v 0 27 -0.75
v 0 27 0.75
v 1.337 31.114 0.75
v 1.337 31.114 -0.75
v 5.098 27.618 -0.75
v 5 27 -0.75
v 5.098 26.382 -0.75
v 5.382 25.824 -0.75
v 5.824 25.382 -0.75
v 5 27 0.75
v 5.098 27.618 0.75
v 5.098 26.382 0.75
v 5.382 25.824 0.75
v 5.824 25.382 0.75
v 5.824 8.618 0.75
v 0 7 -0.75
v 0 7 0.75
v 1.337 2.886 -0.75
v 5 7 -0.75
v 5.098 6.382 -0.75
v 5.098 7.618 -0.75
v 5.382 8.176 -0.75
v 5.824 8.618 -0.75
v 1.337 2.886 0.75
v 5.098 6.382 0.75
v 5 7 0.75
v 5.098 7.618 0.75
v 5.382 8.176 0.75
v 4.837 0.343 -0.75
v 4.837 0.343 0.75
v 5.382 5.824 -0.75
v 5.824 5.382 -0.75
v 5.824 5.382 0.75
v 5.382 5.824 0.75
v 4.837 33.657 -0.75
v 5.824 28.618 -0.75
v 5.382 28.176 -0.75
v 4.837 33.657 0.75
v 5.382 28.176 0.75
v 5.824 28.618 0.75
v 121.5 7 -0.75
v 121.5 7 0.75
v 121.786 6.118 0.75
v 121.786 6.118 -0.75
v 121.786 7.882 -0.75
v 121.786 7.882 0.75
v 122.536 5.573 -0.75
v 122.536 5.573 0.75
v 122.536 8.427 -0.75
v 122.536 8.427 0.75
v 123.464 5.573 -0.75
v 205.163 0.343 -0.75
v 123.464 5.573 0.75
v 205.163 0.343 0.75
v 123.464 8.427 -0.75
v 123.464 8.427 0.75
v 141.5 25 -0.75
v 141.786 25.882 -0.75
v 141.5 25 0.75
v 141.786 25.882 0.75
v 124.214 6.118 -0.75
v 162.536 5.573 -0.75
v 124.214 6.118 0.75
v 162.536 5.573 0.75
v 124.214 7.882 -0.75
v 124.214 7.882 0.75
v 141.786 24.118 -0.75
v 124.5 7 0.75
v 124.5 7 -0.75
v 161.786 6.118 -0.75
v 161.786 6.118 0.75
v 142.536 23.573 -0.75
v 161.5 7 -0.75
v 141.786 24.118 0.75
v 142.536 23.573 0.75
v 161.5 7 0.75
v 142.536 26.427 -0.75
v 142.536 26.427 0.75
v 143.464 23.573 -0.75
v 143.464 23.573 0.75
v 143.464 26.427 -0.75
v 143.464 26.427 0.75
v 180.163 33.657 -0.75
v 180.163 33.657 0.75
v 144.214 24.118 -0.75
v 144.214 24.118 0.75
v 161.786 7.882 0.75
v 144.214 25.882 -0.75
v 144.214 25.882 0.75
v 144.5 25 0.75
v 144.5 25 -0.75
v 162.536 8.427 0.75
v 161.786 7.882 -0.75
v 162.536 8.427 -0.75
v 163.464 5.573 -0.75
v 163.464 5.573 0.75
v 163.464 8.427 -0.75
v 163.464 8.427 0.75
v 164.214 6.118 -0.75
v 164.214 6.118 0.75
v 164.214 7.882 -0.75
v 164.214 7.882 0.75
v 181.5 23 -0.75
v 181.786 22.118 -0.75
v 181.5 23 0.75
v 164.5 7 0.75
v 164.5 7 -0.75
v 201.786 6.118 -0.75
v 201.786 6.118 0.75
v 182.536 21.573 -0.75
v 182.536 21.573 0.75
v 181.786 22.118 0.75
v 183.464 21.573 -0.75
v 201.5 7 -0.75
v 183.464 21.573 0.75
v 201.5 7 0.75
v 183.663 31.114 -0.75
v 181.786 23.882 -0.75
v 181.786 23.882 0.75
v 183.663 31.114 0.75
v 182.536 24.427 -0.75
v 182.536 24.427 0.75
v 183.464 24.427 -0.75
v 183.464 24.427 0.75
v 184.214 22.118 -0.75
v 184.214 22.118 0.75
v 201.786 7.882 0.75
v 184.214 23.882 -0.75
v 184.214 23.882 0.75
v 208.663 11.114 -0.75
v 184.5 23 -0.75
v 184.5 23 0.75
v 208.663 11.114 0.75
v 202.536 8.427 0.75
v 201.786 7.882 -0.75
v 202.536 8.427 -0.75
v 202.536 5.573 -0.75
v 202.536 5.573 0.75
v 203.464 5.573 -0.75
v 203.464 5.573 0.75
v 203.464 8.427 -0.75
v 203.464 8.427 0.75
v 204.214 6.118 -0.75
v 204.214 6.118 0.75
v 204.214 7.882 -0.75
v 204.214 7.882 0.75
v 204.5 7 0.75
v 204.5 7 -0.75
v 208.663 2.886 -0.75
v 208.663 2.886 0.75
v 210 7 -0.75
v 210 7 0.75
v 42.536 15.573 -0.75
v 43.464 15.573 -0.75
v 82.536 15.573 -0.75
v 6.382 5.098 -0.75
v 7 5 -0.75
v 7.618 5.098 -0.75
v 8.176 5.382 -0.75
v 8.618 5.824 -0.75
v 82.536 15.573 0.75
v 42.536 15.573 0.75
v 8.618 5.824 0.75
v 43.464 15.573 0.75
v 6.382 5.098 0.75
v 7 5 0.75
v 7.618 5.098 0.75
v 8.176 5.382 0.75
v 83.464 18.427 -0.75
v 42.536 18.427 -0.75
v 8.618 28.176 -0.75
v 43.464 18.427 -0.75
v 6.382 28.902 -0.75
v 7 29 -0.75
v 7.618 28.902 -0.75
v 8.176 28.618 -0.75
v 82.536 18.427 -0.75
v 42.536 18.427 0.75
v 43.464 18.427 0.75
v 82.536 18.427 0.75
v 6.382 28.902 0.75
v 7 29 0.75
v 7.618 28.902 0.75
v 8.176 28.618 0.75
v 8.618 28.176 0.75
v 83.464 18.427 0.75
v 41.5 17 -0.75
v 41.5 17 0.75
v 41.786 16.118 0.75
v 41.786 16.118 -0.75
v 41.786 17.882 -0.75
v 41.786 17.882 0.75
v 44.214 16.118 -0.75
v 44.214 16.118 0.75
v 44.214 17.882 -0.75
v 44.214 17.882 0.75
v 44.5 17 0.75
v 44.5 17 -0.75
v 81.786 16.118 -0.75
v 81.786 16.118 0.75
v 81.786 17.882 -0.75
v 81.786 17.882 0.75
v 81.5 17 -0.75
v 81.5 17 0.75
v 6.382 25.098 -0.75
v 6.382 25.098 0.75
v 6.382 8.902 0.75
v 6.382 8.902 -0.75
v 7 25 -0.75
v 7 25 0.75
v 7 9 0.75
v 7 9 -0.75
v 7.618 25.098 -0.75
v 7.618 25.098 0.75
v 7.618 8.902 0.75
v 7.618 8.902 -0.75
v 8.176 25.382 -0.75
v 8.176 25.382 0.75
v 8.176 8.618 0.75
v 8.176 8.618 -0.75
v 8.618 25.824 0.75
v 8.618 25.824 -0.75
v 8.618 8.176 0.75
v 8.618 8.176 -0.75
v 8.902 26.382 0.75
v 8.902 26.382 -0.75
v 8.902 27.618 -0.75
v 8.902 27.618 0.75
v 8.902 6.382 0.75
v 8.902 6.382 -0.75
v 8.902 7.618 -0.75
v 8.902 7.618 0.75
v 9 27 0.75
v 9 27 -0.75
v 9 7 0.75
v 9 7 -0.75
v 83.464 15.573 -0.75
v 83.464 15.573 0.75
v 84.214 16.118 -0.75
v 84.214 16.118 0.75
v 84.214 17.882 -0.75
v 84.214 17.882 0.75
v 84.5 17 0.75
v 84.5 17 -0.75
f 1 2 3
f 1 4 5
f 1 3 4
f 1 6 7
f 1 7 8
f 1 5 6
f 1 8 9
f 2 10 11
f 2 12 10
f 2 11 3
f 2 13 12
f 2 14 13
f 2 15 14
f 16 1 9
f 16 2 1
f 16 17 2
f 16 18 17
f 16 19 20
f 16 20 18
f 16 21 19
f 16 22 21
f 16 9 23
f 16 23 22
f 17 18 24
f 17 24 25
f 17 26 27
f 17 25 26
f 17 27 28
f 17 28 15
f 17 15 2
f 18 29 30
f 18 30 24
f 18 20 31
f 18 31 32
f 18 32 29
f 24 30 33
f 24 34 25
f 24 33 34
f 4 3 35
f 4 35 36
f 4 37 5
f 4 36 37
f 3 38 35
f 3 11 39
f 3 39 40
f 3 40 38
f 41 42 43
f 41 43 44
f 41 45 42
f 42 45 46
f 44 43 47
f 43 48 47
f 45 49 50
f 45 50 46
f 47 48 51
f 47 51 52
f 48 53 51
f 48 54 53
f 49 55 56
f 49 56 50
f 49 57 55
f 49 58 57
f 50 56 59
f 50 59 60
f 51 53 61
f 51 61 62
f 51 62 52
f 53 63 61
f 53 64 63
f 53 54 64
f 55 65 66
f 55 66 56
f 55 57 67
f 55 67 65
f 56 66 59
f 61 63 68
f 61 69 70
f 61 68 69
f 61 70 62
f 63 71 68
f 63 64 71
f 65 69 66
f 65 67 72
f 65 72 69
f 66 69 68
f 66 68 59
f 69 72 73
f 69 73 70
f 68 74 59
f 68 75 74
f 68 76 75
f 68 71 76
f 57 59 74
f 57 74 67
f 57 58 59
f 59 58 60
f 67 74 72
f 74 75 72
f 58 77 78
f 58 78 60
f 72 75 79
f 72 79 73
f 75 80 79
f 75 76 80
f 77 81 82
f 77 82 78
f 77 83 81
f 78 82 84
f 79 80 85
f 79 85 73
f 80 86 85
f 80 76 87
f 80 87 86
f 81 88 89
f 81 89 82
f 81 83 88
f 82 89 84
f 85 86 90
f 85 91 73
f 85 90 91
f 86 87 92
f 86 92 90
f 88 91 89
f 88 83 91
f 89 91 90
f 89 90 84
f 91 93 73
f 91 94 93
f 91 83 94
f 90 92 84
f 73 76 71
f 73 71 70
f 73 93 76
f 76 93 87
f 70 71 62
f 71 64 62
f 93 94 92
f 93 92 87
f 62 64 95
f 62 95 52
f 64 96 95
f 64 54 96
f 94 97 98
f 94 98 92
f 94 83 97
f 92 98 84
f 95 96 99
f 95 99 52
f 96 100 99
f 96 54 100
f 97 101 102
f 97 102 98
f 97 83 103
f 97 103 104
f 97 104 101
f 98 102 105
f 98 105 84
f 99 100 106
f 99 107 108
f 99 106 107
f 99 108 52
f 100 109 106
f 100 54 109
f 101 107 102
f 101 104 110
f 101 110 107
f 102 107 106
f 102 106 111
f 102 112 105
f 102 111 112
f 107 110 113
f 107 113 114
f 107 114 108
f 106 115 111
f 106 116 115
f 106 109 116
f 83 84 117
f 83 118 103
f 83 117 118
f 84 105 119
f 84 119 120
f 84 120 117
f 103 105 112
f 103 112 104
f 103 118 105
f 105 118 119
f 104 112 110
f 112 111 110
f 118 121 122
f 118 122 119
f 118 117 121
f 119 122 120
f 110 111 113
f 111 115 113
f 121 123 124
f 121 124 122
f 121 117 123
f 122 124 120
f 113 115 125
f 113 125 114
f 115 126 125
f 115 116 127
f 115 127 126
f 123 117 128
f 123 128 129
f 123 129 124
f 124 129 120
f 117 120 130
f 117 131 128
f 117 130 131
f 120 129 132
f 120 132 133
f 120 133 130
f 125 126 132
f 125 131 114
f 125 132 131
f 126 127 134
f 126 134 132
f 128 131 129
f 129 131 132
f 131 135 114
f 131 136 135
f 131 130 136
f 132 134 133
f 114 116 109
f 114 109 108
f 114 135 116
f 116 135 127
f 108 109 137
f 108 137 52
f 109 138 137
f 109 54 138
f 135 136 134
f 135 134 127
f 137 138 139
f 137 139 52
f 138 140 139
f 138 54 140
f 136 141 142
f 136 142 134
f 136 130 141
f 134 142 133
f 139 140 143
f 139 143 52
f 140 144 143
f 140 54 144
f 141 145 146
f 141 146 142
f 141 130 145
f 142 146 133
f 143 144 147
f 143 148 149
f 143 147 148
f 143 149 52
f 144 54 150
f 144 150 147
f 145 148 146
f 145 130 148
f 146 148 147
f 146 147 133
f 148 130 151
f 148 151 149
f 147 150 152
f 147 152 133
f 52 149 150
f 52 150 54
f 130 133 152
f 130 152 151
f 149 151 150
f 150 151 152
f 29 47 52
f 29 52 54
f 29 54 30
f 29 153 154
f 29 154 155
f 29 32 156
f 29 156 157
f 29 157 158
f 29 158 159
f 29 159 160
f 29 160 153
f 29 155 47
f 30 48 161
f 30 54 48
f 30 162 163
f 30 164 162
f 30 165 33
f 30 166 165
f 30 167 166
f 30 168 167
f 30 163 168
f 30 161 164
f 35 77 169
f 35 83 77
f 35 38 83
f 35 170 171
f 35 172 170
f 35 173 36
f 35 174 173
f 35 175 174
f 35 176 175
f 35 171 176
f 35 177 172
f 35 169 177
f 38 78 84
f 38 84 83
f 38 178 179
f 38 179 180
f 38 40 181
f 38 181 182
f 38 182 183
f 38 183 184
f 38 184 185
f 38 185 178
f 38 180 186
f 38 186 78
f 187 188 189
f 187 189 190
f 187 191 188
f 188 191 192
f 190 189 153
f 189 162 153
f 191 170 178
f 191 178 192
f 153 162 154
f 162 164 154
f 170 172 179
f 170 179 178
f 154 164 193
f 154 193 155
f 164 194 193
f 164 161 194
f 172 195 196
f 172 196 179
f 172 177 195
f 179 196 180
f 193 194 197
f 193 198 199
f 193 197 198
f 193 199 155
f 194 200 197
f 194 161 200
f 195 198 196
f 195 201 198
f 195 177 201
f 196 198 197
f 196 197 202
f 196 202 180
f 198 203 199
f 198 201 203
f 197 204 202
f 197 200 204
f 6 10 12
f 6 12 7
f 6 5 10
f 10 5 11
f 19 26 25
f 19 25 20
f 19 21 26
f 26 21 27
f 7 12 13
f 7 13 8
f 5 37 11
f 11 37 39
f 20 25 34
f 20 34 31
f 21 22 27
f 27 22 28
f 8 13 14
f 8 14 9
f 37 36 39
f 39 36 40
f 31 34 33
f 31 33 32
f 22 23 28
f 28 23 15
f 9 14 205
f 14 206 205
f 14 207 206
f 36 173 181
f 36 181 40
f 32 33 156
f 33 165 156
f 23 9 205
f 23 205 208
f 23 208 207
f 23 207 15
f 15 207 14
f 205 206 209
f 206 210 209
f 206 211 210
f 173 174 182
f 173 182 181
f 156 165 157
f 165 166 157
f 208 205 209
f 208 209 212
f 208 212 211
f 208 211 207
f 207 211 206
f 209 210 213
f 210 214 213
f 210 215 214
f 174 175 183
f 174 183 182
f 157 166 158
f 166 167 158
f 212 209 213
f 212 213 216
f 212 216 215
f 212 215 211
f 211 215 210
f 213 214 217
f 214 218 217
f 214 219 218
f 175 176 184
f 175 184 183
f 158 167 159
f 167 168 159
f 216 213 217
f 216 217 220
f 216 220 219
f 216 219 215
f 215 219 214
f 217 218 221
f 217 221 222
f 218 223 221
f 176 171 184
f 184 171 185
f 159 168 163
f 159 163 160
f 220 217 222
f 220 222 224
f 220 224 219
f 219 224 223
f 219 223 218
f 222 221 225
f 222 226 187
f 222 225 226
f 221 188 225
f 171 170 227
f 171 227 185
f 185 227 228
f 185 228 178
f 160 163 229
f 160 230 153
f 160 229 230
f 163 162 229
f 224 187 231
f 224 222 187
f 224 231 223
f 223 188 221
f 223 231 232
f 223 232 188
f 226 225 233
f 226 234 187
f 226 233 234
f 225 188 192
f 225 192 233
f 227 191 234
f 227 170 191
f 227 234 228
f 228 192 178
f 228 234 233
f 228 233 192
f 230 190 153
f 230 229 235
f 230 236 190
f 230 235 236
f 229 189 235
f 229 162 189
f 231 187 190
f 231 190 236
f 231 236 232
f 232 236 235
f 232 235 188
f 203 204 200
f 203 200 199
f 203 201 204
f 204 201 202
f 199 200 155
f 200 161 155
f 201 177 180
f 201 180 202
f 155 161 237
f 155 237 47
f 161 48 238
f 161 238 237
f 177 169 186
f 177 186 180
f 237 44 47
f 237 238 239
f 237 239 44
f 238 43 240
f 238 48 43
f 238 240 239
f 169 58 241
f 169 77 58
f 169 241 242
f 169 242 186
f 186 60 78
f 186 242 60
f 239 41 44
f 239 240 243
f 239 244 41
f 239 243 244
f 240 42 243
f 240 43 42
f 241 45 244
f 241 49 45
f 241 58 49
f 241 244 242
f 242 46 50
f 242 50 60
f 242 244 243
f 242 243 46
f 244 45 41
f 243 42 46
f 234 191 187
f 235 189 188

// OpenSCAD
// file: ../Parameters.scad
//Main tube diameter - hole [mm]
main_tube_outer_diameter = 25.4;
main_tube_inner_diameter = 23.5;

//Tube for undercarriage - hole [mm]
tube_for_undercarriage_outer_diameter = 10.6;
tube_for_undercarriage_inner_diameter = 6;
global_clearance = 0.5;


//umístění podvozkových trubek

second_undercarriage_hole = main_tube_outer_diameter*2 + main_tube_outer_diameter/5 + main_tube_outer_diameter/2 + 170 + 160;

// Parameters of cube couplings
coupling_wall_thickness = main_tube_outer_diameter/5;  //width of coupling walls 
thickness_between_tubes = main_tube_outer_diameter/10;    // minimum distance between tubes in couplings

coupling_wall_thickness_undercarriage = tube_for_undercarriage_outer_diameter/3;
thickness_between_tubes_undercarriage = tube_for_undercarriage_outer_diameter/10;

//Screw diameter and nut for M4 [mm]
M4_screw_diameter=4.5;
Nut_height_M4 = 3.2;
Nut_diameter_M4 = 7.86;


//Screw diameter and nut for M3 [mm]
M3_screw_diameter = 3.2;
Nut_height_M3 = 1.7;	
Nut_diameter_M3 = 6.6; 


//The tube for help
Help_main_tube_outer = 25;
Help_main_tube_inner = 23; 
Help_tube_for_undercarriage_outer = 10;
Help_tube_for_undercarriage_inner = 5;


//main hull parameters

hull_drop_length = 580;
hull_wall_thickness = 0.8;
hull_y_size = 120;
hull_z_size = 150;
hull_x_size = 580;
hull_corner_radius = 4;
hull_airfoil_thickness= 35;  // thickness of drop generating airfoil in percent of lenght.
hull_scale_x = 1;
hull_scale_y = 1.5;
hull_scale_z = 1.5;

main_pilon_position = 170+68;
cover_pilon_position = 180;
height_of_vertical_tube = 275; //278mm je změřená délka trubky. 

ribbon_width = 5; // šířka vyztužovacích lemů. 

// šířka otvoru v přední části kapoty pro držák motoru.
width_of_engine_holder = 63;

//Top Cover Division - dělení horního krytu pro tisk
top_cover_division = [0, 50, 150, 280, 410, hull_x_size]; // upraveny seznam tak, aby deleni začinalo od nuly, což umožňí úplně automatické rozdělení.

//Bottom Cover Division - dělení dolního krytu pro tisk
bottom_cover_division = [0,100,250,365, 470, hull_x_size];
// zkrácená část pro payload pro testovací tisk
//bottom_cover_division = [0,200,250,365, 470, hull_x_size];

//Base Divison - dělení podložky
base_division = [0,140,280,410, hull_x_size];

//Cover pilon division - na výšku (v ose Z)
cover_pilon_division = [0,170,height_of_vertical_tube + main_tube_outer_diameter + coupling_wall_thickness];

//pozice šroubů
	//horní kryt
top_screw_position = [0, (top_cover_division[0] + top_cover_division[1])/4, (top_cover_division[2] - top_cover_division[1])/2 + top_cover_division[1], (top_cover_division[3] - top_cover_division[2])/2 + top_cover_division[2],(top_cover_division[4] - top_cover_division[3])/2 + top_cover_division[3],(top_cover_division[5] - top_cover_division[4])/2 + top_cover_division[4] - 20];
	//spodní kryt
bottom_screw_position = [0,(bottom_cover_division[0] + bottom_cover_division[1])/15 + 5, bottom_cover_division[1]/1.1, + bottom_cover_division[3], bottom_cover_division[3] + bottom_cover_division[1]/2, bottom_cover_division[4] - 6*global_clearance, bottom_cover_division[4] + bottom_cover_division[1]/2.5];




//šířka zámků
lock_width = 10;

//délka zámků
lock_length = 3;


//accumulator
//základní rozměry akumulátoru
width_of_accumulator = 129.4;//45+1;
depth_of_accumulator = 40.61;
height_of_accumulator = 43.65;
//Zapuštění akumulátoru
sink_of_accumulator = 5; //main_tube_outer_diameter/5 - Nut_height_M3*1.5;

//tloušťka hrany spojky
accumulator_holder_width = 18; 
accumulator_holder_thickness = 10; 

//posunutí akumálátoru na podložce
move_of_accumulator = 165;   // pozice akumulátoru (ovlivňuje těžiště)


////////////////
// Senzory
///////////////////

//opticalFlow
    width_optical_flow_senzor = 45.5;
    depth_optical_flow_senzor = 6;
    height_optical_flow_senzor = 35;
    sink_of_optical_flow_senzor = depth_optical_flow_senzor - 5; 
    M3_optical_flow_senzor_Z = 30.4;
    M3_optical_flow_senzor_X = 24;
    M3_optical_flow_senzor_Z_alone = 9.1;
    M3_optical_flow_senzor_X_alone = 16.7;
// file: lib/naca4.scad
// Naca4.scad - library for parametric airfoils of 4 digit NACA series
// Code: Rudolf Huttary, Berlin 
// June 2015
// commercial use prohibited


// general use: for more examples refer to sampler.scad
// naca = naca digits or 3el vector  (default = 12 or [0, 0, .12])
// L    = chord length [mm]      (default= 100)
// N    = # sample points        (default= 81)
// h    = height [mm]            (default= 1)
// open = close at the thin end? (default = true)
// two equivalent example calls
 airfoil(naca = 2408, L = 60, N=1001, h = 30, open = false); 
// airfoil(naca = [.2, .4, .32], L = 60, N=1001, h = 30, open = false); 

module help()
{
  echo(str("\n\nList of signatures in lib:\n=================\n", 
  "module airfoil(naca=2412, L = 100, N = 81, h = 1, open = false) - renders airfoil object\n", 
  "module airfoil(naca=[.2, .4, .12], L = 100, N = 81, h = 1, open = false) - renders airfoil object using percentage for camber,  camber distance and thicknes\n", 
  "function airfoil_data(naca=12, L = 100, N = 81, open = false)\n",
  "=================\n")); 
}

help(); 
// this is the object
module airfoil(naca=12, L = 100, N = 81, h = 1, open = false)
{
  linear_extrude(height = h)
  polygon(points = airfoil_data(naca, L, N, open)); 
}

module hollow_airfoil(lnaca=12, L = 100, N = 81, h = 1, open = false, wall_thickness = 1)
{
    if (open){
        linear_extrude(height = h)

        if (wall_thickness>0){
            difference(){
                polygon(points = airfoil_data(naca, L, N, false));
                offset(delta = - wall_thickness, chamfer = false) polygon(points = airfoil_data(naca, L, N, open = false));
            }
        }
        else{
            difference(){
                offset(delta = - wall_thickness, chamfer = false) polygon(points = airfoil_data(naca, L, N, open = false));
                polygon(points = airfoil_data(naca, L, N, false));
            }
        }
    }
    else{

        linear_extrude(height = abs(wall_thickness))
            polygon(points = airfoil_data(naca, L, N, false)); 

        linear_extrude(height = h)
            difference(){
                polygon(points = airfoil_data(naca, L, N, open));
                offset(delta = - wall_thickness) polygon(points = airfoil_data(naca, L, N, open = false));
            }

        translate([0,0, h - wall_thickness])
            linear_extrude(height = abs(wall_thickness))
                polygon(points = airfoil_data(naca, L, N, false)); 

    }
}


// this is the main function providing the airfoil data
function airfoil_data(naca=12, L = 100, N = 81, open = false) = 
  let(Na = len(naca)!=3?NACA(naca):naca)
  let(A = [.2969, -0.126, -.3516, .2843, open?-0.1015:-0.1036])
  [for (b=[-180:360/(N):179.99]) 
    let (x = (1-cos(b))/2)  
    let(yt = sign(b)*Na[2]/.2*(A*[sqrt(x), x, x*x, x*x*x, x*x*x*x])) 
    Na[0]==0?L*[x, yt]:L*camber(x, yt, Na[0], Na[1], sign(b))];  


function trailing_edge_angle(naca=12, open = false) = 
  let(Na = len(naca)!=3?NACA(naca):naca)
  let(A = [.2969, -0.126, -.3516, .2843, open?-0.1015:-0.1036])
  let (x =0.999)  // set x near to airfoil trailing edge
  let(yt = Na[2]/.2*(A*[sqrt(x), x, x*x, x*x*x, x*x*x*x])) // calculate distance from x-axis at previously set position
  atan2(yt,1-x);  // calculate angle of triangle between end of airfoil. The triange height corresponds to previously calculated distance from x-axis

function surface_angle(x = 0.5, naca=12, open = false) = 
  let(Na = len(naca)!=3?NACA(naca):naca)
  let(A = [0.2969, -0.126, -0.3516, 0.2843, open?-0.1015:-0.1036])
  let(dy = Na[2]/0.2*(A*[(1/2)*(1/sqrt(x)), 1, 2*x, 3*x*x, 4*x*x*x])) // calculate derivative of airfoil function at the x point
  atan(dy);  // calculate  the angle from function derivative

function surface_distance(x = 0.5, naca=12, open = false) = 
  let(Na = len(naca)!=3?NACA(naca):naca)
  let(A = [0.2969, -0.126, -0.3516, 0.2843, open?-0.1015:-0.1036])
  Na[2]/.2*(A*[sqrt(x), x, x*x, x*x*x, x*x*x*x]); // calculate distance from x-axis at previously set position

// helper functions
function NACA(naca) = 
  let (M = floor(naca/1000))
  let (P = floor((naca-M*1000)/100)) 
  [M/100, P/10, floor(naca-M*1000-P*100)/100];  

function camber(x, y, M, P, upper) = 
  let(yc = (x<P)?M/P/P*(2*P*x-x*x): M/(1-P)/(1-P)*(1 - 2*P + 2*P*x -x*x))
  let(dy = (x<P)?2*M/P/P*(P-x):2*M/(1-P)/(1-P)*(P-x))
  let(th = atan(dy))
  [upper ? x - y*sin(th):x + y*sin(th), upper ? yc + y*cos(th):yc - y*cos(th)];
// main file
use <./lib/naca4.scad>
include <../Parameters.scad>


module 666_1050(draft = true){

    plate_depth = 34;
    plate_length = 210;
    bevel_radius = 7;

    bevel_angle = 90 - atan((23-7)/(103-83));
    bevel_distance = tan(bevel_angle) * bevel_radius;
    echo("bevel angle", bevel_angle);
	union(){
		difference(){
            translate([plate_length/2, plate_depth/2, 0])
                minkowski(){
                    difference()
                    {
                        cube([plate_length- 2*bevel_radius, plate_depth - 2*bevel_radius,1], center = true);
                        translate([plate_length/2 - bevel_radius + bevel_distance, -plate_depth/2, -1])
                            rotate([0,0, bevel_angle])
                                cube([40,150,2]);
                    }

                    cylinder (h = 0.5, r = 7, $fn = draft ? 10 : 80, center = true);
                }



            // díry pro uchycení rotorového listu
			translate([100 + 23, 7,-1])
				cylinder (h = 10, d = 3, $fn = draft ? 10 : 20);

			translate([100 + 43, 25,-1])	
				cylinder (h = 10, d = 3, $fn = draft ? 10 : 20);

			translate([100 + 63, 7, -1])	
				cylinder (h = 10, d = 3, $fn = draft ? 10 : 20);

			translate([100 + 83, 23, -1])	
				cylinder (h = 10, d = 3, $fn = draft ? 10 : 20);

			translate([100 + 103, 7, -1])	
				cylinder (h = 10, d = 3, $fn = draft ? 10 : 20);

            //díry pro přišroubování závěsu rotorového listu. 

            translate([7,7,-1]) 
                cylinder (h = 10, d = 4, $fn = draft ? 20 : 80);

            translate([7,27,-1]) 
                cylinder (h = 10, d = 4, $fn = draft ? 20 : 80);

            // díry pro vzpěry mezi dva plechy 
            translate([43, plate_depth/2, -1])   
                cylinder (h = 10, d = 3, $fn = draft ? 10 : 20);

            translate([43 + 40, plate_depth/2, -1])   
                cylinder (h = 10, d = 3, $fn = draft ? 10 : 20);



		}
	}
}
666_1050();
